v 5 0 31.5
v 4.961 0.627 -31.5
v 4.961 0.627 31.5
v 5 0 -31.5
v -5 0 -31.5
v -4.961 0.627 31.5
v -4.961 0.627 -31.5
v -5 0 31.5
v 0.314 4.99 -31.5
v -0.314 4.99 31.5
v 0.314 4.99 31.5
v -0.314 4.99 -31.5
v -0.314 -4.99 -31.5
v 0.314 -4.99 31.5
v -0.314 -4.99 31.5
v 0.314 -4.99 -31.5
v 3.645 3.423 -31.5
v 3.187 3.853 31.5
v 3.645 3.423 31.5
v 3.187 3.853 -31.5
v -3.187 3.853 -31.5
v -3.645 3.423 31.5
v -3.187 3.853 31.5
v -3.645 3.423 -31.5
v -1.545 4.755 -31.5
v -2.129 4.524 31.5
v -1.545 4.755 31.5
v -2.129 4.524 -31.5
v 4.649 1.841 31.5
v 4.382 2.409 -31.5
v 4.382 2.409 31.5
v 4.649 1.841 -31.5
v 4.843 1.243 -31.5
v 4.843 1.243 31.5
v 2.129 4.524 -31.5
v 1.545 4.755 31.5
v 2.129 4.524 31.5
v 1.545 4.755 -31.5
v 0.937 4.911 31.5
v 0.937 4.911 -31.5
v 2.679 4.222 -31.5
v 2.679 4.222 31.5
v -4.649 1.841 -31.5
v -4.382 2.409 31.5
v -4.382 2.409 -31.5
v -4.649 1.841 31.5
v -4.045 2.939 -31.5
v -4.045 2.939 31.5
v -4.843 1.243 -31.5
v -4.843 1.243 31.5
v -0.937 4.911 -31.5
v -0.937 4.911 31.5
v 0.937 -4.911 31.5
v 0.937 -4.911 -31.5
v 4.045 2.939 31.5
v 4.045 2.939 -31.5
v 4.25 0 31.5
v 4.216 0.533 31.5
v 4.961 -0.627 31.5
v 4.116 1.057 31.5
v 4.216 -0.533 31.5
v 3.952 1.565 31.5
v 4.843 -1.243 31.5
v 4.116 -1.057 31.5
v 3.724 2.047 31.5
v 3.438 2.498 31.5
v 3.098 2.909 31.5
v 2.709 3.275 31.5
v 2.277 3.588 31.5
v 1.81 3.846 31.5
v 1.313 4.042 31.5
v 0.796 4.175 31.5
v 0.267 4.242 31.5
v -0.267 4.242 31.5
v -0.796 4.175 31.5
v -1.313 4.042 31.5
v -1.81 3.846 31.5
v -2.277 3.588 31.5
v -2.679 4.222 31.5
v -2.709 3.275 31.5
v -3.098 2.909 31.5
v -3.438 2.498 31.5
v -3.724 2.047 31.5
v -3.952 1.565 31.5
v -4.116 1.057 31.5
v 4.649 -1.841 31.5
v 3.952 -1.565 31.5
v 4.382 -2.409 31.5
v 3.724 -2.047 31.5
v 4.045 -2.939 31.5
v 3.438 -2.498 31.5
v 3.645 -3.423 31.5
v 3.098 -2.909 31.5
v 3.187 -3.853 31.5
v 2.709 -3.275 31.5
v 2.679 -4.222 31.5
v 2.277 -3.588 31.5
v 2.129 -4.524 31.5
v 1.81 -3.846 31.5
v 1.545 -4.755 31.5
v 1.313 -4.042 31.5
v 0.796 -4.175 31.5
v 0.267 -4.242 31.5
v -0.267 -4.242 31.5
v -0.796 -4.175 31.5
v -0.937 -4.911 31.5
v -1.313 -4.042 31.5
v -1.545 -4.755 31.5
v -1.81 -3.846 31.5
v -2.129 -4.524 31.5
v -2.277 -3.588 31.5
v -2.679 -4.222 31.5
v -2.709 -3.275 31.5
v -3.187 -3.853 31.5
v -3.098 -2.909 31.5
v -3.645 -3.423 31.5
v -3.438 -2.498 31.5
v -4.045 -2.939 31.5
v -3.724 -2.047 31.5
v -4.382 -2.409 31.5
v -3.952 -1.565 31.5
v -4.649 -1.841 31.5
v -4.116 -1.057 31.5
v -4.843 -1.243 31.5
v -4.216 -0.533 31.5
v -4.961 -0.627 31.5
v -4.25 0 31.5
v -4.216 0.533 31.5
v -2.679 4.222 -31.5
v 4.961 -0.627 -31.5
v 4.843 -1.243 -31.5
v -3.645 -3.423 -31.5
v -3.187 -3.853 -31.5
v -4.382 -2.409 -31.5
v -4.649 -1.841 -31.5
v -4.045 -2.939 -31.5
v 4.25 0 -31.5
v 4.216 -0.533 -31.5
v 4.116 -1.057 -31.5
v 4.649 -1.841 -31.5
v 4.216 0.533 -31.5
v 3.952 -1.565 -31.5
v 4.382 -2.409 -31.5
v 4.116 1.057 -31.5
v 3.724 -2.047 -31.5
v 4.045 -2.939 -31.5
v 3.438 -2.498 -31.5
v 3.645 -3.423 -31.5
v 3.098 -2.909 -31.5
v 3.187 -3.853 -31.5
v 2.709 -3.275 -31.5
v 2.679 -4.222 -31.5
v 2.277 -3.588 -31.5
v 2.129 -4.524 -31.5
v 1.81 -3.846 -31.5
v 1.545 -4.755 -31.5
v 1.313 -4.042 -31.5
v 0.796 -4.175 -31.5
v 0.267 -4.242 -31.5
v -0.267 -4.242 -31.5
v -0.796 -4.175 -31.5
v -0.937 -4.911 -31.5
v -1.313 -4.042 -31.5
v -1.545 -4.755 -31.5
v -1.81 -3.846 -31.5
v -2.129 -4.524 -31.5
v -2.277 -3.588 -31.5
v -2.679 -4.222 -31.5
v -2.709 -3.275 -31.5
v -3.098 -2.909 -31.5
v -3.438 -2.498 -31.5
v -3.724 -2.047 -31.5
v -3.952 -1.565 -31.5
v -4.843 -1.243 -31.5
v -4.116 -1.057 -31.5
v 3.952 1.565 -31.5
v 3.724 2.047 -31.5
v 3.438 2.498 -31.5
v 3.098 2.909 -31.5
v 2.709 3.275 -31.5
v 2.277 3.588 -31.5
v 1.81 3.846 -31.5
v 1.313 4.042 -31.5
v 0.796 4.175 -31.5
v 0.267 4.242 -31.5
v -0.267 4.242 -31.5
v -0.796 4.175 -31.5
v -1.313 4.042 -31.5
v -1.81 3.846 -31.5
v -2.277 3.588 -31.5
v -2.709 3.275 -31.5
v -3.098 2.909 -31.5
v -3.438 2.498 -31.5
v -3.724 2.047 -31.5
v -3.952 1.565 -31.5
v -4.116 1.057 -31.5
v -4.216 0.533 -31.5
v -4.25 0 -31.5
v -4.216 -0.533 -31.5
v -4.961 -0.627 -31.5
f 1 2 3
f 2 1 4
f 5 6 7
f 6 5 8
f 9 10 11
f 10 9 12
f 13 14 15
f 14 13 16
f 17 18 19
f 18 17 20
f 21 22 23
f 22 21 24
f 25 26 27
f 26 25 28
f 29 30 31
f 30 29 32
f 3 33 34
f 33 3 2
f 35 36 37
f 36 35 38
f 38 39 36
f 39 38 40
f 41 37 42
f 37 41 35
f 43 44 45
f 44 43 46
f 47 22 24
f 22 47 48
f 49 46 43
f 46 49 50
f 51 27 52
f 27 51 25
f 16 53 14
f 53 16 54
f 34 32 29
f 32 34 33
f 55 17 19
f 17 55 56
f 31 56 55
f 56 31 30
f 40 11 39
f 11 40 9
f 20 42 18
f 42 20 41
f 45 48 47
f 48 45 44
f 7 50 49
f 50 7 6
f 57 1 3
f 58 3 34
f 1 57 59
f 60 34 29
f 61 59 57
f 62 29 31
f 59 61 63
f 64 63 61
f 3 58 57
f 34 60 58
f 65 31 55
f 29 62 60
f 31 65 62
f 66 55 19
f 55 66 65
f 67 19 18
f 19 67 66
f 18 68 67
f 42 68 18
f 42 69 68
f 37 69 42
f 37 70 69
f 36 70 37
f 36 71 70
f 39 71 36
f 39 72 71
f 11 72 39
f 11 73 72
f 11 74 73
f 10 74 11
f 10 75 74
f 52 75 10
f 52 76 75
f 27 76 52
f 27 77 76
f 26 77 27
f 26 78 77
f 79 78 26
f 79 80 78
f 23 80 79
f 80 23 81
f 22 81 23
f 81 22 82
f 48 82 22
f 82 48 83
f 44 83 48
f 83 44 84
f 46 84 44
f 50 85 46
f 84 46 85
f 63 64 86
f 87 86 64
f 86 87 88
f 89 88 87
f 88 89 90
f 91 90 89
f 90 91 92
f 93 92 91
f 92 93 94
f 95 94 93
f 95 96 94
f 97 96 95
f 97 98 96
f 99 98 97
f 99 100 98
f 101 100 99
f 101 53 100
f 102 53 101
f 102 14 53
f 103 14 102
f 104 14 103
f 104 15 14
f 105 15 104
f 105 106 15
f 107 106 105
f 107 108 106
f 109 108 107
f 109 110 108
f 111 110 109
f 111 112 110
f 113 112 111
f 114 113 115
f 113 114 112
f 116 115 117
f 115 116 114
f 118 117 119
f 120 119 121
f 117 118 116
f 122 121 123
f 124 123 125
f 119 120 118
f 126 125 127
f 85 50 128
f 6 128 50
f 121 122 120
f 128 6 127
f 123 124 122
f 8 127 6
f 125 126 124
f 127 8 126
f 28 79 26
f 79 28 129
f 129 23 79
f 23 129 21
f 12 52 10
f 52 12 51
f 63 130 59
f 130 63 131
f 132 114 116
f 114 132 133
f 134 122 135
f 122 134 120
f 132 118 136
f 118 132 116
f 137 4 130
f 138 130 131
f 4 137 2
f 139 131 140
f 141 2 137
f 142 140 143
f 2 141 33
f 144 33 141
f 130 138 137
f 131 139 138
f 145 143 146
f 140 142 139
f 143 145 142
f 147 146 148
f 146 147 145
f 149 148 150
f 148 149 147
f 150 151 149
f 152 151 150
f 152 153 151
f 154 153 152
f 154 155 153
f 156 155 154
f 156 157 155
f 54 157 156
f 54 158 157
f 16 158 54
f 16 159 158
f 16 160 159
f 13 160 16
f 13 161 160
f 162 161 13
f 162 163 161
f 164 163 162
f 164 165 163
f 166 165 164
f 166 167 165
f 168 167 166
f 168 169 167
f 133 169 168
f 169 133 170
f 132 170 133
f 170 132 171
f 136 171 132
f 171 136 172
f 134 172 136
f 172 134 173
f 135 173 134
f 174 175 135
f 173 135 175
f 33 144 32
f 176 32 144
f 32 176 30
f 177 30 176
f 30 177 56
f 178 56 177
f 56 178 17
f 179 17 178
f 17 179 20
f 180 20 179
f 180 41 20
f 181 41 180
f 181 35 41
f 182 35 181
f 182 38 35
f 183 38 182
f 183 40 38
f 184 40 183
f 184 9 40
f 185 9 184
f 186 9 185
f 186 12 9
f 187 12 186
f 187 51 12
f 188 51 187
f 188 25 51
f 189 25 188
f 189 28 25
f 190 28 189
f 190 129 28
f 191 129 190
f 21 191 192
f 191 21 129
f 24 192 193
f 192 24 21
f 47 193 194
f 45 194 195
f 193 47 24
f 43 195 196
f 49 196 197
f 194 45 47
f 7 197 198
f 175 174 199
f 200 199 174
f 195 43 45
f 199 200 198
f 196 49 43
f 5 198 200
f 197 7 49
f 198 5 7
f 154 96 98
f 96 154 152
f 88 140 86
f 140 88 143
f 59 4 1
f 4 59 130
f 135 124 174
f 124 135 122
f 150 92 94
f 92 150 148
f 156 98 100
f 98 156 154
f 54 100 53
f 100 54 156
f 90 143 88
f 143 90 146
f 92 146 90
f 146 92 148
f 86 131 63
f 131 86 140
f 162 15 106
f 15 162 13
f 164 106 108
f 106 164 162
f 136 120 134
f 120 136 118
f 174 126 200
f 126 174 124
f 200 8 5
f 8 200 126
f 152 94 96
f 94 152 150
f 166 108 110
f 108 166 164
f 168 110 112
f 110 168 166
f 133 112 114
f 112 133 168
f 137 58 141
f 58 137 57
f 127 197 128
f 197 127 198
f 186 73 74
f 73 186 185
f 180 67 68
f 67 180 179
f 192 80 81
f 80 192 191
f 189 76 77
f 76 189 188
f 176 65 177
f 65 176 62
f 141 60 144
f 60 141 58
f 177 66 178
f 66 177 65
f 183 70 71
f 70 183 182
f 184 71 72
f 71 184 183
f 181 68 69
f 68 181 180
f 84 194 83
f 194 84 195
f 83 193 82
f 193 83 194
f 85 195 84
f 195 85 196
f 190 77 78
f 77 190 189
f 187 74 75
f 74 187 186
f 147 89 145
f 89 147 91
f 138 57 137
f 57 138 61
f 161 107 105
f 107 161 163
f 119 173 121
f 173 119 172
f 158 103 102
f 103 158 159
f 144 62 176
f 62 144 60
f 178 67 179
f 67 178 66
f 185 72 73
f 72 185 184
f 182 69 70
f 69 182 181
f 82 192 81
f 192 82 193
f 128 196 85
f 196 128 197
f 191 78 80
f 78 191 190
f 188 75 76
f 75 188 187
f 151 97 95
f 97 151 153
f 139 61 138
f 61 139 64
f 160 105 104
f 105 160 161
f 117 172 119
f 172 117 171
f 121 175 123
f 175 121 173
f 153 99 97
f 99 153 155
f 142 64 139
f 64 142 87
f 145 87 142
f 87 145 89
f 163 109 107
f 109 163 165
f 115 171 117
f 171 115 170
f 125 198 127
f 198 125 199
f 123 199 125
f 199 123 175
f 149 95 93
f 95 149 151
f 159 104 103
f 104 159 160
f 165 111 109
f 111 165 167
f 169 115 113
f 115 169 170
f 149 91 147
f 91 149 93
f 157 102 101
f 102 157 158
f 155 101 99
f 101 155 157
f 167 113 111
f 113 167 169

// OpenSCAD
$fn = 50;


difference() {
	union() {
		translate(v = [0, 0, -31.5000000000]) {
			cylinder(h = 63, r = 5.0000000000);
		}
	}
	union() {
		translate(v = [0, 0, -100.0000000000]) {
			cylinder(h = 200, r = 4.2500000000);
		}
	}
}
